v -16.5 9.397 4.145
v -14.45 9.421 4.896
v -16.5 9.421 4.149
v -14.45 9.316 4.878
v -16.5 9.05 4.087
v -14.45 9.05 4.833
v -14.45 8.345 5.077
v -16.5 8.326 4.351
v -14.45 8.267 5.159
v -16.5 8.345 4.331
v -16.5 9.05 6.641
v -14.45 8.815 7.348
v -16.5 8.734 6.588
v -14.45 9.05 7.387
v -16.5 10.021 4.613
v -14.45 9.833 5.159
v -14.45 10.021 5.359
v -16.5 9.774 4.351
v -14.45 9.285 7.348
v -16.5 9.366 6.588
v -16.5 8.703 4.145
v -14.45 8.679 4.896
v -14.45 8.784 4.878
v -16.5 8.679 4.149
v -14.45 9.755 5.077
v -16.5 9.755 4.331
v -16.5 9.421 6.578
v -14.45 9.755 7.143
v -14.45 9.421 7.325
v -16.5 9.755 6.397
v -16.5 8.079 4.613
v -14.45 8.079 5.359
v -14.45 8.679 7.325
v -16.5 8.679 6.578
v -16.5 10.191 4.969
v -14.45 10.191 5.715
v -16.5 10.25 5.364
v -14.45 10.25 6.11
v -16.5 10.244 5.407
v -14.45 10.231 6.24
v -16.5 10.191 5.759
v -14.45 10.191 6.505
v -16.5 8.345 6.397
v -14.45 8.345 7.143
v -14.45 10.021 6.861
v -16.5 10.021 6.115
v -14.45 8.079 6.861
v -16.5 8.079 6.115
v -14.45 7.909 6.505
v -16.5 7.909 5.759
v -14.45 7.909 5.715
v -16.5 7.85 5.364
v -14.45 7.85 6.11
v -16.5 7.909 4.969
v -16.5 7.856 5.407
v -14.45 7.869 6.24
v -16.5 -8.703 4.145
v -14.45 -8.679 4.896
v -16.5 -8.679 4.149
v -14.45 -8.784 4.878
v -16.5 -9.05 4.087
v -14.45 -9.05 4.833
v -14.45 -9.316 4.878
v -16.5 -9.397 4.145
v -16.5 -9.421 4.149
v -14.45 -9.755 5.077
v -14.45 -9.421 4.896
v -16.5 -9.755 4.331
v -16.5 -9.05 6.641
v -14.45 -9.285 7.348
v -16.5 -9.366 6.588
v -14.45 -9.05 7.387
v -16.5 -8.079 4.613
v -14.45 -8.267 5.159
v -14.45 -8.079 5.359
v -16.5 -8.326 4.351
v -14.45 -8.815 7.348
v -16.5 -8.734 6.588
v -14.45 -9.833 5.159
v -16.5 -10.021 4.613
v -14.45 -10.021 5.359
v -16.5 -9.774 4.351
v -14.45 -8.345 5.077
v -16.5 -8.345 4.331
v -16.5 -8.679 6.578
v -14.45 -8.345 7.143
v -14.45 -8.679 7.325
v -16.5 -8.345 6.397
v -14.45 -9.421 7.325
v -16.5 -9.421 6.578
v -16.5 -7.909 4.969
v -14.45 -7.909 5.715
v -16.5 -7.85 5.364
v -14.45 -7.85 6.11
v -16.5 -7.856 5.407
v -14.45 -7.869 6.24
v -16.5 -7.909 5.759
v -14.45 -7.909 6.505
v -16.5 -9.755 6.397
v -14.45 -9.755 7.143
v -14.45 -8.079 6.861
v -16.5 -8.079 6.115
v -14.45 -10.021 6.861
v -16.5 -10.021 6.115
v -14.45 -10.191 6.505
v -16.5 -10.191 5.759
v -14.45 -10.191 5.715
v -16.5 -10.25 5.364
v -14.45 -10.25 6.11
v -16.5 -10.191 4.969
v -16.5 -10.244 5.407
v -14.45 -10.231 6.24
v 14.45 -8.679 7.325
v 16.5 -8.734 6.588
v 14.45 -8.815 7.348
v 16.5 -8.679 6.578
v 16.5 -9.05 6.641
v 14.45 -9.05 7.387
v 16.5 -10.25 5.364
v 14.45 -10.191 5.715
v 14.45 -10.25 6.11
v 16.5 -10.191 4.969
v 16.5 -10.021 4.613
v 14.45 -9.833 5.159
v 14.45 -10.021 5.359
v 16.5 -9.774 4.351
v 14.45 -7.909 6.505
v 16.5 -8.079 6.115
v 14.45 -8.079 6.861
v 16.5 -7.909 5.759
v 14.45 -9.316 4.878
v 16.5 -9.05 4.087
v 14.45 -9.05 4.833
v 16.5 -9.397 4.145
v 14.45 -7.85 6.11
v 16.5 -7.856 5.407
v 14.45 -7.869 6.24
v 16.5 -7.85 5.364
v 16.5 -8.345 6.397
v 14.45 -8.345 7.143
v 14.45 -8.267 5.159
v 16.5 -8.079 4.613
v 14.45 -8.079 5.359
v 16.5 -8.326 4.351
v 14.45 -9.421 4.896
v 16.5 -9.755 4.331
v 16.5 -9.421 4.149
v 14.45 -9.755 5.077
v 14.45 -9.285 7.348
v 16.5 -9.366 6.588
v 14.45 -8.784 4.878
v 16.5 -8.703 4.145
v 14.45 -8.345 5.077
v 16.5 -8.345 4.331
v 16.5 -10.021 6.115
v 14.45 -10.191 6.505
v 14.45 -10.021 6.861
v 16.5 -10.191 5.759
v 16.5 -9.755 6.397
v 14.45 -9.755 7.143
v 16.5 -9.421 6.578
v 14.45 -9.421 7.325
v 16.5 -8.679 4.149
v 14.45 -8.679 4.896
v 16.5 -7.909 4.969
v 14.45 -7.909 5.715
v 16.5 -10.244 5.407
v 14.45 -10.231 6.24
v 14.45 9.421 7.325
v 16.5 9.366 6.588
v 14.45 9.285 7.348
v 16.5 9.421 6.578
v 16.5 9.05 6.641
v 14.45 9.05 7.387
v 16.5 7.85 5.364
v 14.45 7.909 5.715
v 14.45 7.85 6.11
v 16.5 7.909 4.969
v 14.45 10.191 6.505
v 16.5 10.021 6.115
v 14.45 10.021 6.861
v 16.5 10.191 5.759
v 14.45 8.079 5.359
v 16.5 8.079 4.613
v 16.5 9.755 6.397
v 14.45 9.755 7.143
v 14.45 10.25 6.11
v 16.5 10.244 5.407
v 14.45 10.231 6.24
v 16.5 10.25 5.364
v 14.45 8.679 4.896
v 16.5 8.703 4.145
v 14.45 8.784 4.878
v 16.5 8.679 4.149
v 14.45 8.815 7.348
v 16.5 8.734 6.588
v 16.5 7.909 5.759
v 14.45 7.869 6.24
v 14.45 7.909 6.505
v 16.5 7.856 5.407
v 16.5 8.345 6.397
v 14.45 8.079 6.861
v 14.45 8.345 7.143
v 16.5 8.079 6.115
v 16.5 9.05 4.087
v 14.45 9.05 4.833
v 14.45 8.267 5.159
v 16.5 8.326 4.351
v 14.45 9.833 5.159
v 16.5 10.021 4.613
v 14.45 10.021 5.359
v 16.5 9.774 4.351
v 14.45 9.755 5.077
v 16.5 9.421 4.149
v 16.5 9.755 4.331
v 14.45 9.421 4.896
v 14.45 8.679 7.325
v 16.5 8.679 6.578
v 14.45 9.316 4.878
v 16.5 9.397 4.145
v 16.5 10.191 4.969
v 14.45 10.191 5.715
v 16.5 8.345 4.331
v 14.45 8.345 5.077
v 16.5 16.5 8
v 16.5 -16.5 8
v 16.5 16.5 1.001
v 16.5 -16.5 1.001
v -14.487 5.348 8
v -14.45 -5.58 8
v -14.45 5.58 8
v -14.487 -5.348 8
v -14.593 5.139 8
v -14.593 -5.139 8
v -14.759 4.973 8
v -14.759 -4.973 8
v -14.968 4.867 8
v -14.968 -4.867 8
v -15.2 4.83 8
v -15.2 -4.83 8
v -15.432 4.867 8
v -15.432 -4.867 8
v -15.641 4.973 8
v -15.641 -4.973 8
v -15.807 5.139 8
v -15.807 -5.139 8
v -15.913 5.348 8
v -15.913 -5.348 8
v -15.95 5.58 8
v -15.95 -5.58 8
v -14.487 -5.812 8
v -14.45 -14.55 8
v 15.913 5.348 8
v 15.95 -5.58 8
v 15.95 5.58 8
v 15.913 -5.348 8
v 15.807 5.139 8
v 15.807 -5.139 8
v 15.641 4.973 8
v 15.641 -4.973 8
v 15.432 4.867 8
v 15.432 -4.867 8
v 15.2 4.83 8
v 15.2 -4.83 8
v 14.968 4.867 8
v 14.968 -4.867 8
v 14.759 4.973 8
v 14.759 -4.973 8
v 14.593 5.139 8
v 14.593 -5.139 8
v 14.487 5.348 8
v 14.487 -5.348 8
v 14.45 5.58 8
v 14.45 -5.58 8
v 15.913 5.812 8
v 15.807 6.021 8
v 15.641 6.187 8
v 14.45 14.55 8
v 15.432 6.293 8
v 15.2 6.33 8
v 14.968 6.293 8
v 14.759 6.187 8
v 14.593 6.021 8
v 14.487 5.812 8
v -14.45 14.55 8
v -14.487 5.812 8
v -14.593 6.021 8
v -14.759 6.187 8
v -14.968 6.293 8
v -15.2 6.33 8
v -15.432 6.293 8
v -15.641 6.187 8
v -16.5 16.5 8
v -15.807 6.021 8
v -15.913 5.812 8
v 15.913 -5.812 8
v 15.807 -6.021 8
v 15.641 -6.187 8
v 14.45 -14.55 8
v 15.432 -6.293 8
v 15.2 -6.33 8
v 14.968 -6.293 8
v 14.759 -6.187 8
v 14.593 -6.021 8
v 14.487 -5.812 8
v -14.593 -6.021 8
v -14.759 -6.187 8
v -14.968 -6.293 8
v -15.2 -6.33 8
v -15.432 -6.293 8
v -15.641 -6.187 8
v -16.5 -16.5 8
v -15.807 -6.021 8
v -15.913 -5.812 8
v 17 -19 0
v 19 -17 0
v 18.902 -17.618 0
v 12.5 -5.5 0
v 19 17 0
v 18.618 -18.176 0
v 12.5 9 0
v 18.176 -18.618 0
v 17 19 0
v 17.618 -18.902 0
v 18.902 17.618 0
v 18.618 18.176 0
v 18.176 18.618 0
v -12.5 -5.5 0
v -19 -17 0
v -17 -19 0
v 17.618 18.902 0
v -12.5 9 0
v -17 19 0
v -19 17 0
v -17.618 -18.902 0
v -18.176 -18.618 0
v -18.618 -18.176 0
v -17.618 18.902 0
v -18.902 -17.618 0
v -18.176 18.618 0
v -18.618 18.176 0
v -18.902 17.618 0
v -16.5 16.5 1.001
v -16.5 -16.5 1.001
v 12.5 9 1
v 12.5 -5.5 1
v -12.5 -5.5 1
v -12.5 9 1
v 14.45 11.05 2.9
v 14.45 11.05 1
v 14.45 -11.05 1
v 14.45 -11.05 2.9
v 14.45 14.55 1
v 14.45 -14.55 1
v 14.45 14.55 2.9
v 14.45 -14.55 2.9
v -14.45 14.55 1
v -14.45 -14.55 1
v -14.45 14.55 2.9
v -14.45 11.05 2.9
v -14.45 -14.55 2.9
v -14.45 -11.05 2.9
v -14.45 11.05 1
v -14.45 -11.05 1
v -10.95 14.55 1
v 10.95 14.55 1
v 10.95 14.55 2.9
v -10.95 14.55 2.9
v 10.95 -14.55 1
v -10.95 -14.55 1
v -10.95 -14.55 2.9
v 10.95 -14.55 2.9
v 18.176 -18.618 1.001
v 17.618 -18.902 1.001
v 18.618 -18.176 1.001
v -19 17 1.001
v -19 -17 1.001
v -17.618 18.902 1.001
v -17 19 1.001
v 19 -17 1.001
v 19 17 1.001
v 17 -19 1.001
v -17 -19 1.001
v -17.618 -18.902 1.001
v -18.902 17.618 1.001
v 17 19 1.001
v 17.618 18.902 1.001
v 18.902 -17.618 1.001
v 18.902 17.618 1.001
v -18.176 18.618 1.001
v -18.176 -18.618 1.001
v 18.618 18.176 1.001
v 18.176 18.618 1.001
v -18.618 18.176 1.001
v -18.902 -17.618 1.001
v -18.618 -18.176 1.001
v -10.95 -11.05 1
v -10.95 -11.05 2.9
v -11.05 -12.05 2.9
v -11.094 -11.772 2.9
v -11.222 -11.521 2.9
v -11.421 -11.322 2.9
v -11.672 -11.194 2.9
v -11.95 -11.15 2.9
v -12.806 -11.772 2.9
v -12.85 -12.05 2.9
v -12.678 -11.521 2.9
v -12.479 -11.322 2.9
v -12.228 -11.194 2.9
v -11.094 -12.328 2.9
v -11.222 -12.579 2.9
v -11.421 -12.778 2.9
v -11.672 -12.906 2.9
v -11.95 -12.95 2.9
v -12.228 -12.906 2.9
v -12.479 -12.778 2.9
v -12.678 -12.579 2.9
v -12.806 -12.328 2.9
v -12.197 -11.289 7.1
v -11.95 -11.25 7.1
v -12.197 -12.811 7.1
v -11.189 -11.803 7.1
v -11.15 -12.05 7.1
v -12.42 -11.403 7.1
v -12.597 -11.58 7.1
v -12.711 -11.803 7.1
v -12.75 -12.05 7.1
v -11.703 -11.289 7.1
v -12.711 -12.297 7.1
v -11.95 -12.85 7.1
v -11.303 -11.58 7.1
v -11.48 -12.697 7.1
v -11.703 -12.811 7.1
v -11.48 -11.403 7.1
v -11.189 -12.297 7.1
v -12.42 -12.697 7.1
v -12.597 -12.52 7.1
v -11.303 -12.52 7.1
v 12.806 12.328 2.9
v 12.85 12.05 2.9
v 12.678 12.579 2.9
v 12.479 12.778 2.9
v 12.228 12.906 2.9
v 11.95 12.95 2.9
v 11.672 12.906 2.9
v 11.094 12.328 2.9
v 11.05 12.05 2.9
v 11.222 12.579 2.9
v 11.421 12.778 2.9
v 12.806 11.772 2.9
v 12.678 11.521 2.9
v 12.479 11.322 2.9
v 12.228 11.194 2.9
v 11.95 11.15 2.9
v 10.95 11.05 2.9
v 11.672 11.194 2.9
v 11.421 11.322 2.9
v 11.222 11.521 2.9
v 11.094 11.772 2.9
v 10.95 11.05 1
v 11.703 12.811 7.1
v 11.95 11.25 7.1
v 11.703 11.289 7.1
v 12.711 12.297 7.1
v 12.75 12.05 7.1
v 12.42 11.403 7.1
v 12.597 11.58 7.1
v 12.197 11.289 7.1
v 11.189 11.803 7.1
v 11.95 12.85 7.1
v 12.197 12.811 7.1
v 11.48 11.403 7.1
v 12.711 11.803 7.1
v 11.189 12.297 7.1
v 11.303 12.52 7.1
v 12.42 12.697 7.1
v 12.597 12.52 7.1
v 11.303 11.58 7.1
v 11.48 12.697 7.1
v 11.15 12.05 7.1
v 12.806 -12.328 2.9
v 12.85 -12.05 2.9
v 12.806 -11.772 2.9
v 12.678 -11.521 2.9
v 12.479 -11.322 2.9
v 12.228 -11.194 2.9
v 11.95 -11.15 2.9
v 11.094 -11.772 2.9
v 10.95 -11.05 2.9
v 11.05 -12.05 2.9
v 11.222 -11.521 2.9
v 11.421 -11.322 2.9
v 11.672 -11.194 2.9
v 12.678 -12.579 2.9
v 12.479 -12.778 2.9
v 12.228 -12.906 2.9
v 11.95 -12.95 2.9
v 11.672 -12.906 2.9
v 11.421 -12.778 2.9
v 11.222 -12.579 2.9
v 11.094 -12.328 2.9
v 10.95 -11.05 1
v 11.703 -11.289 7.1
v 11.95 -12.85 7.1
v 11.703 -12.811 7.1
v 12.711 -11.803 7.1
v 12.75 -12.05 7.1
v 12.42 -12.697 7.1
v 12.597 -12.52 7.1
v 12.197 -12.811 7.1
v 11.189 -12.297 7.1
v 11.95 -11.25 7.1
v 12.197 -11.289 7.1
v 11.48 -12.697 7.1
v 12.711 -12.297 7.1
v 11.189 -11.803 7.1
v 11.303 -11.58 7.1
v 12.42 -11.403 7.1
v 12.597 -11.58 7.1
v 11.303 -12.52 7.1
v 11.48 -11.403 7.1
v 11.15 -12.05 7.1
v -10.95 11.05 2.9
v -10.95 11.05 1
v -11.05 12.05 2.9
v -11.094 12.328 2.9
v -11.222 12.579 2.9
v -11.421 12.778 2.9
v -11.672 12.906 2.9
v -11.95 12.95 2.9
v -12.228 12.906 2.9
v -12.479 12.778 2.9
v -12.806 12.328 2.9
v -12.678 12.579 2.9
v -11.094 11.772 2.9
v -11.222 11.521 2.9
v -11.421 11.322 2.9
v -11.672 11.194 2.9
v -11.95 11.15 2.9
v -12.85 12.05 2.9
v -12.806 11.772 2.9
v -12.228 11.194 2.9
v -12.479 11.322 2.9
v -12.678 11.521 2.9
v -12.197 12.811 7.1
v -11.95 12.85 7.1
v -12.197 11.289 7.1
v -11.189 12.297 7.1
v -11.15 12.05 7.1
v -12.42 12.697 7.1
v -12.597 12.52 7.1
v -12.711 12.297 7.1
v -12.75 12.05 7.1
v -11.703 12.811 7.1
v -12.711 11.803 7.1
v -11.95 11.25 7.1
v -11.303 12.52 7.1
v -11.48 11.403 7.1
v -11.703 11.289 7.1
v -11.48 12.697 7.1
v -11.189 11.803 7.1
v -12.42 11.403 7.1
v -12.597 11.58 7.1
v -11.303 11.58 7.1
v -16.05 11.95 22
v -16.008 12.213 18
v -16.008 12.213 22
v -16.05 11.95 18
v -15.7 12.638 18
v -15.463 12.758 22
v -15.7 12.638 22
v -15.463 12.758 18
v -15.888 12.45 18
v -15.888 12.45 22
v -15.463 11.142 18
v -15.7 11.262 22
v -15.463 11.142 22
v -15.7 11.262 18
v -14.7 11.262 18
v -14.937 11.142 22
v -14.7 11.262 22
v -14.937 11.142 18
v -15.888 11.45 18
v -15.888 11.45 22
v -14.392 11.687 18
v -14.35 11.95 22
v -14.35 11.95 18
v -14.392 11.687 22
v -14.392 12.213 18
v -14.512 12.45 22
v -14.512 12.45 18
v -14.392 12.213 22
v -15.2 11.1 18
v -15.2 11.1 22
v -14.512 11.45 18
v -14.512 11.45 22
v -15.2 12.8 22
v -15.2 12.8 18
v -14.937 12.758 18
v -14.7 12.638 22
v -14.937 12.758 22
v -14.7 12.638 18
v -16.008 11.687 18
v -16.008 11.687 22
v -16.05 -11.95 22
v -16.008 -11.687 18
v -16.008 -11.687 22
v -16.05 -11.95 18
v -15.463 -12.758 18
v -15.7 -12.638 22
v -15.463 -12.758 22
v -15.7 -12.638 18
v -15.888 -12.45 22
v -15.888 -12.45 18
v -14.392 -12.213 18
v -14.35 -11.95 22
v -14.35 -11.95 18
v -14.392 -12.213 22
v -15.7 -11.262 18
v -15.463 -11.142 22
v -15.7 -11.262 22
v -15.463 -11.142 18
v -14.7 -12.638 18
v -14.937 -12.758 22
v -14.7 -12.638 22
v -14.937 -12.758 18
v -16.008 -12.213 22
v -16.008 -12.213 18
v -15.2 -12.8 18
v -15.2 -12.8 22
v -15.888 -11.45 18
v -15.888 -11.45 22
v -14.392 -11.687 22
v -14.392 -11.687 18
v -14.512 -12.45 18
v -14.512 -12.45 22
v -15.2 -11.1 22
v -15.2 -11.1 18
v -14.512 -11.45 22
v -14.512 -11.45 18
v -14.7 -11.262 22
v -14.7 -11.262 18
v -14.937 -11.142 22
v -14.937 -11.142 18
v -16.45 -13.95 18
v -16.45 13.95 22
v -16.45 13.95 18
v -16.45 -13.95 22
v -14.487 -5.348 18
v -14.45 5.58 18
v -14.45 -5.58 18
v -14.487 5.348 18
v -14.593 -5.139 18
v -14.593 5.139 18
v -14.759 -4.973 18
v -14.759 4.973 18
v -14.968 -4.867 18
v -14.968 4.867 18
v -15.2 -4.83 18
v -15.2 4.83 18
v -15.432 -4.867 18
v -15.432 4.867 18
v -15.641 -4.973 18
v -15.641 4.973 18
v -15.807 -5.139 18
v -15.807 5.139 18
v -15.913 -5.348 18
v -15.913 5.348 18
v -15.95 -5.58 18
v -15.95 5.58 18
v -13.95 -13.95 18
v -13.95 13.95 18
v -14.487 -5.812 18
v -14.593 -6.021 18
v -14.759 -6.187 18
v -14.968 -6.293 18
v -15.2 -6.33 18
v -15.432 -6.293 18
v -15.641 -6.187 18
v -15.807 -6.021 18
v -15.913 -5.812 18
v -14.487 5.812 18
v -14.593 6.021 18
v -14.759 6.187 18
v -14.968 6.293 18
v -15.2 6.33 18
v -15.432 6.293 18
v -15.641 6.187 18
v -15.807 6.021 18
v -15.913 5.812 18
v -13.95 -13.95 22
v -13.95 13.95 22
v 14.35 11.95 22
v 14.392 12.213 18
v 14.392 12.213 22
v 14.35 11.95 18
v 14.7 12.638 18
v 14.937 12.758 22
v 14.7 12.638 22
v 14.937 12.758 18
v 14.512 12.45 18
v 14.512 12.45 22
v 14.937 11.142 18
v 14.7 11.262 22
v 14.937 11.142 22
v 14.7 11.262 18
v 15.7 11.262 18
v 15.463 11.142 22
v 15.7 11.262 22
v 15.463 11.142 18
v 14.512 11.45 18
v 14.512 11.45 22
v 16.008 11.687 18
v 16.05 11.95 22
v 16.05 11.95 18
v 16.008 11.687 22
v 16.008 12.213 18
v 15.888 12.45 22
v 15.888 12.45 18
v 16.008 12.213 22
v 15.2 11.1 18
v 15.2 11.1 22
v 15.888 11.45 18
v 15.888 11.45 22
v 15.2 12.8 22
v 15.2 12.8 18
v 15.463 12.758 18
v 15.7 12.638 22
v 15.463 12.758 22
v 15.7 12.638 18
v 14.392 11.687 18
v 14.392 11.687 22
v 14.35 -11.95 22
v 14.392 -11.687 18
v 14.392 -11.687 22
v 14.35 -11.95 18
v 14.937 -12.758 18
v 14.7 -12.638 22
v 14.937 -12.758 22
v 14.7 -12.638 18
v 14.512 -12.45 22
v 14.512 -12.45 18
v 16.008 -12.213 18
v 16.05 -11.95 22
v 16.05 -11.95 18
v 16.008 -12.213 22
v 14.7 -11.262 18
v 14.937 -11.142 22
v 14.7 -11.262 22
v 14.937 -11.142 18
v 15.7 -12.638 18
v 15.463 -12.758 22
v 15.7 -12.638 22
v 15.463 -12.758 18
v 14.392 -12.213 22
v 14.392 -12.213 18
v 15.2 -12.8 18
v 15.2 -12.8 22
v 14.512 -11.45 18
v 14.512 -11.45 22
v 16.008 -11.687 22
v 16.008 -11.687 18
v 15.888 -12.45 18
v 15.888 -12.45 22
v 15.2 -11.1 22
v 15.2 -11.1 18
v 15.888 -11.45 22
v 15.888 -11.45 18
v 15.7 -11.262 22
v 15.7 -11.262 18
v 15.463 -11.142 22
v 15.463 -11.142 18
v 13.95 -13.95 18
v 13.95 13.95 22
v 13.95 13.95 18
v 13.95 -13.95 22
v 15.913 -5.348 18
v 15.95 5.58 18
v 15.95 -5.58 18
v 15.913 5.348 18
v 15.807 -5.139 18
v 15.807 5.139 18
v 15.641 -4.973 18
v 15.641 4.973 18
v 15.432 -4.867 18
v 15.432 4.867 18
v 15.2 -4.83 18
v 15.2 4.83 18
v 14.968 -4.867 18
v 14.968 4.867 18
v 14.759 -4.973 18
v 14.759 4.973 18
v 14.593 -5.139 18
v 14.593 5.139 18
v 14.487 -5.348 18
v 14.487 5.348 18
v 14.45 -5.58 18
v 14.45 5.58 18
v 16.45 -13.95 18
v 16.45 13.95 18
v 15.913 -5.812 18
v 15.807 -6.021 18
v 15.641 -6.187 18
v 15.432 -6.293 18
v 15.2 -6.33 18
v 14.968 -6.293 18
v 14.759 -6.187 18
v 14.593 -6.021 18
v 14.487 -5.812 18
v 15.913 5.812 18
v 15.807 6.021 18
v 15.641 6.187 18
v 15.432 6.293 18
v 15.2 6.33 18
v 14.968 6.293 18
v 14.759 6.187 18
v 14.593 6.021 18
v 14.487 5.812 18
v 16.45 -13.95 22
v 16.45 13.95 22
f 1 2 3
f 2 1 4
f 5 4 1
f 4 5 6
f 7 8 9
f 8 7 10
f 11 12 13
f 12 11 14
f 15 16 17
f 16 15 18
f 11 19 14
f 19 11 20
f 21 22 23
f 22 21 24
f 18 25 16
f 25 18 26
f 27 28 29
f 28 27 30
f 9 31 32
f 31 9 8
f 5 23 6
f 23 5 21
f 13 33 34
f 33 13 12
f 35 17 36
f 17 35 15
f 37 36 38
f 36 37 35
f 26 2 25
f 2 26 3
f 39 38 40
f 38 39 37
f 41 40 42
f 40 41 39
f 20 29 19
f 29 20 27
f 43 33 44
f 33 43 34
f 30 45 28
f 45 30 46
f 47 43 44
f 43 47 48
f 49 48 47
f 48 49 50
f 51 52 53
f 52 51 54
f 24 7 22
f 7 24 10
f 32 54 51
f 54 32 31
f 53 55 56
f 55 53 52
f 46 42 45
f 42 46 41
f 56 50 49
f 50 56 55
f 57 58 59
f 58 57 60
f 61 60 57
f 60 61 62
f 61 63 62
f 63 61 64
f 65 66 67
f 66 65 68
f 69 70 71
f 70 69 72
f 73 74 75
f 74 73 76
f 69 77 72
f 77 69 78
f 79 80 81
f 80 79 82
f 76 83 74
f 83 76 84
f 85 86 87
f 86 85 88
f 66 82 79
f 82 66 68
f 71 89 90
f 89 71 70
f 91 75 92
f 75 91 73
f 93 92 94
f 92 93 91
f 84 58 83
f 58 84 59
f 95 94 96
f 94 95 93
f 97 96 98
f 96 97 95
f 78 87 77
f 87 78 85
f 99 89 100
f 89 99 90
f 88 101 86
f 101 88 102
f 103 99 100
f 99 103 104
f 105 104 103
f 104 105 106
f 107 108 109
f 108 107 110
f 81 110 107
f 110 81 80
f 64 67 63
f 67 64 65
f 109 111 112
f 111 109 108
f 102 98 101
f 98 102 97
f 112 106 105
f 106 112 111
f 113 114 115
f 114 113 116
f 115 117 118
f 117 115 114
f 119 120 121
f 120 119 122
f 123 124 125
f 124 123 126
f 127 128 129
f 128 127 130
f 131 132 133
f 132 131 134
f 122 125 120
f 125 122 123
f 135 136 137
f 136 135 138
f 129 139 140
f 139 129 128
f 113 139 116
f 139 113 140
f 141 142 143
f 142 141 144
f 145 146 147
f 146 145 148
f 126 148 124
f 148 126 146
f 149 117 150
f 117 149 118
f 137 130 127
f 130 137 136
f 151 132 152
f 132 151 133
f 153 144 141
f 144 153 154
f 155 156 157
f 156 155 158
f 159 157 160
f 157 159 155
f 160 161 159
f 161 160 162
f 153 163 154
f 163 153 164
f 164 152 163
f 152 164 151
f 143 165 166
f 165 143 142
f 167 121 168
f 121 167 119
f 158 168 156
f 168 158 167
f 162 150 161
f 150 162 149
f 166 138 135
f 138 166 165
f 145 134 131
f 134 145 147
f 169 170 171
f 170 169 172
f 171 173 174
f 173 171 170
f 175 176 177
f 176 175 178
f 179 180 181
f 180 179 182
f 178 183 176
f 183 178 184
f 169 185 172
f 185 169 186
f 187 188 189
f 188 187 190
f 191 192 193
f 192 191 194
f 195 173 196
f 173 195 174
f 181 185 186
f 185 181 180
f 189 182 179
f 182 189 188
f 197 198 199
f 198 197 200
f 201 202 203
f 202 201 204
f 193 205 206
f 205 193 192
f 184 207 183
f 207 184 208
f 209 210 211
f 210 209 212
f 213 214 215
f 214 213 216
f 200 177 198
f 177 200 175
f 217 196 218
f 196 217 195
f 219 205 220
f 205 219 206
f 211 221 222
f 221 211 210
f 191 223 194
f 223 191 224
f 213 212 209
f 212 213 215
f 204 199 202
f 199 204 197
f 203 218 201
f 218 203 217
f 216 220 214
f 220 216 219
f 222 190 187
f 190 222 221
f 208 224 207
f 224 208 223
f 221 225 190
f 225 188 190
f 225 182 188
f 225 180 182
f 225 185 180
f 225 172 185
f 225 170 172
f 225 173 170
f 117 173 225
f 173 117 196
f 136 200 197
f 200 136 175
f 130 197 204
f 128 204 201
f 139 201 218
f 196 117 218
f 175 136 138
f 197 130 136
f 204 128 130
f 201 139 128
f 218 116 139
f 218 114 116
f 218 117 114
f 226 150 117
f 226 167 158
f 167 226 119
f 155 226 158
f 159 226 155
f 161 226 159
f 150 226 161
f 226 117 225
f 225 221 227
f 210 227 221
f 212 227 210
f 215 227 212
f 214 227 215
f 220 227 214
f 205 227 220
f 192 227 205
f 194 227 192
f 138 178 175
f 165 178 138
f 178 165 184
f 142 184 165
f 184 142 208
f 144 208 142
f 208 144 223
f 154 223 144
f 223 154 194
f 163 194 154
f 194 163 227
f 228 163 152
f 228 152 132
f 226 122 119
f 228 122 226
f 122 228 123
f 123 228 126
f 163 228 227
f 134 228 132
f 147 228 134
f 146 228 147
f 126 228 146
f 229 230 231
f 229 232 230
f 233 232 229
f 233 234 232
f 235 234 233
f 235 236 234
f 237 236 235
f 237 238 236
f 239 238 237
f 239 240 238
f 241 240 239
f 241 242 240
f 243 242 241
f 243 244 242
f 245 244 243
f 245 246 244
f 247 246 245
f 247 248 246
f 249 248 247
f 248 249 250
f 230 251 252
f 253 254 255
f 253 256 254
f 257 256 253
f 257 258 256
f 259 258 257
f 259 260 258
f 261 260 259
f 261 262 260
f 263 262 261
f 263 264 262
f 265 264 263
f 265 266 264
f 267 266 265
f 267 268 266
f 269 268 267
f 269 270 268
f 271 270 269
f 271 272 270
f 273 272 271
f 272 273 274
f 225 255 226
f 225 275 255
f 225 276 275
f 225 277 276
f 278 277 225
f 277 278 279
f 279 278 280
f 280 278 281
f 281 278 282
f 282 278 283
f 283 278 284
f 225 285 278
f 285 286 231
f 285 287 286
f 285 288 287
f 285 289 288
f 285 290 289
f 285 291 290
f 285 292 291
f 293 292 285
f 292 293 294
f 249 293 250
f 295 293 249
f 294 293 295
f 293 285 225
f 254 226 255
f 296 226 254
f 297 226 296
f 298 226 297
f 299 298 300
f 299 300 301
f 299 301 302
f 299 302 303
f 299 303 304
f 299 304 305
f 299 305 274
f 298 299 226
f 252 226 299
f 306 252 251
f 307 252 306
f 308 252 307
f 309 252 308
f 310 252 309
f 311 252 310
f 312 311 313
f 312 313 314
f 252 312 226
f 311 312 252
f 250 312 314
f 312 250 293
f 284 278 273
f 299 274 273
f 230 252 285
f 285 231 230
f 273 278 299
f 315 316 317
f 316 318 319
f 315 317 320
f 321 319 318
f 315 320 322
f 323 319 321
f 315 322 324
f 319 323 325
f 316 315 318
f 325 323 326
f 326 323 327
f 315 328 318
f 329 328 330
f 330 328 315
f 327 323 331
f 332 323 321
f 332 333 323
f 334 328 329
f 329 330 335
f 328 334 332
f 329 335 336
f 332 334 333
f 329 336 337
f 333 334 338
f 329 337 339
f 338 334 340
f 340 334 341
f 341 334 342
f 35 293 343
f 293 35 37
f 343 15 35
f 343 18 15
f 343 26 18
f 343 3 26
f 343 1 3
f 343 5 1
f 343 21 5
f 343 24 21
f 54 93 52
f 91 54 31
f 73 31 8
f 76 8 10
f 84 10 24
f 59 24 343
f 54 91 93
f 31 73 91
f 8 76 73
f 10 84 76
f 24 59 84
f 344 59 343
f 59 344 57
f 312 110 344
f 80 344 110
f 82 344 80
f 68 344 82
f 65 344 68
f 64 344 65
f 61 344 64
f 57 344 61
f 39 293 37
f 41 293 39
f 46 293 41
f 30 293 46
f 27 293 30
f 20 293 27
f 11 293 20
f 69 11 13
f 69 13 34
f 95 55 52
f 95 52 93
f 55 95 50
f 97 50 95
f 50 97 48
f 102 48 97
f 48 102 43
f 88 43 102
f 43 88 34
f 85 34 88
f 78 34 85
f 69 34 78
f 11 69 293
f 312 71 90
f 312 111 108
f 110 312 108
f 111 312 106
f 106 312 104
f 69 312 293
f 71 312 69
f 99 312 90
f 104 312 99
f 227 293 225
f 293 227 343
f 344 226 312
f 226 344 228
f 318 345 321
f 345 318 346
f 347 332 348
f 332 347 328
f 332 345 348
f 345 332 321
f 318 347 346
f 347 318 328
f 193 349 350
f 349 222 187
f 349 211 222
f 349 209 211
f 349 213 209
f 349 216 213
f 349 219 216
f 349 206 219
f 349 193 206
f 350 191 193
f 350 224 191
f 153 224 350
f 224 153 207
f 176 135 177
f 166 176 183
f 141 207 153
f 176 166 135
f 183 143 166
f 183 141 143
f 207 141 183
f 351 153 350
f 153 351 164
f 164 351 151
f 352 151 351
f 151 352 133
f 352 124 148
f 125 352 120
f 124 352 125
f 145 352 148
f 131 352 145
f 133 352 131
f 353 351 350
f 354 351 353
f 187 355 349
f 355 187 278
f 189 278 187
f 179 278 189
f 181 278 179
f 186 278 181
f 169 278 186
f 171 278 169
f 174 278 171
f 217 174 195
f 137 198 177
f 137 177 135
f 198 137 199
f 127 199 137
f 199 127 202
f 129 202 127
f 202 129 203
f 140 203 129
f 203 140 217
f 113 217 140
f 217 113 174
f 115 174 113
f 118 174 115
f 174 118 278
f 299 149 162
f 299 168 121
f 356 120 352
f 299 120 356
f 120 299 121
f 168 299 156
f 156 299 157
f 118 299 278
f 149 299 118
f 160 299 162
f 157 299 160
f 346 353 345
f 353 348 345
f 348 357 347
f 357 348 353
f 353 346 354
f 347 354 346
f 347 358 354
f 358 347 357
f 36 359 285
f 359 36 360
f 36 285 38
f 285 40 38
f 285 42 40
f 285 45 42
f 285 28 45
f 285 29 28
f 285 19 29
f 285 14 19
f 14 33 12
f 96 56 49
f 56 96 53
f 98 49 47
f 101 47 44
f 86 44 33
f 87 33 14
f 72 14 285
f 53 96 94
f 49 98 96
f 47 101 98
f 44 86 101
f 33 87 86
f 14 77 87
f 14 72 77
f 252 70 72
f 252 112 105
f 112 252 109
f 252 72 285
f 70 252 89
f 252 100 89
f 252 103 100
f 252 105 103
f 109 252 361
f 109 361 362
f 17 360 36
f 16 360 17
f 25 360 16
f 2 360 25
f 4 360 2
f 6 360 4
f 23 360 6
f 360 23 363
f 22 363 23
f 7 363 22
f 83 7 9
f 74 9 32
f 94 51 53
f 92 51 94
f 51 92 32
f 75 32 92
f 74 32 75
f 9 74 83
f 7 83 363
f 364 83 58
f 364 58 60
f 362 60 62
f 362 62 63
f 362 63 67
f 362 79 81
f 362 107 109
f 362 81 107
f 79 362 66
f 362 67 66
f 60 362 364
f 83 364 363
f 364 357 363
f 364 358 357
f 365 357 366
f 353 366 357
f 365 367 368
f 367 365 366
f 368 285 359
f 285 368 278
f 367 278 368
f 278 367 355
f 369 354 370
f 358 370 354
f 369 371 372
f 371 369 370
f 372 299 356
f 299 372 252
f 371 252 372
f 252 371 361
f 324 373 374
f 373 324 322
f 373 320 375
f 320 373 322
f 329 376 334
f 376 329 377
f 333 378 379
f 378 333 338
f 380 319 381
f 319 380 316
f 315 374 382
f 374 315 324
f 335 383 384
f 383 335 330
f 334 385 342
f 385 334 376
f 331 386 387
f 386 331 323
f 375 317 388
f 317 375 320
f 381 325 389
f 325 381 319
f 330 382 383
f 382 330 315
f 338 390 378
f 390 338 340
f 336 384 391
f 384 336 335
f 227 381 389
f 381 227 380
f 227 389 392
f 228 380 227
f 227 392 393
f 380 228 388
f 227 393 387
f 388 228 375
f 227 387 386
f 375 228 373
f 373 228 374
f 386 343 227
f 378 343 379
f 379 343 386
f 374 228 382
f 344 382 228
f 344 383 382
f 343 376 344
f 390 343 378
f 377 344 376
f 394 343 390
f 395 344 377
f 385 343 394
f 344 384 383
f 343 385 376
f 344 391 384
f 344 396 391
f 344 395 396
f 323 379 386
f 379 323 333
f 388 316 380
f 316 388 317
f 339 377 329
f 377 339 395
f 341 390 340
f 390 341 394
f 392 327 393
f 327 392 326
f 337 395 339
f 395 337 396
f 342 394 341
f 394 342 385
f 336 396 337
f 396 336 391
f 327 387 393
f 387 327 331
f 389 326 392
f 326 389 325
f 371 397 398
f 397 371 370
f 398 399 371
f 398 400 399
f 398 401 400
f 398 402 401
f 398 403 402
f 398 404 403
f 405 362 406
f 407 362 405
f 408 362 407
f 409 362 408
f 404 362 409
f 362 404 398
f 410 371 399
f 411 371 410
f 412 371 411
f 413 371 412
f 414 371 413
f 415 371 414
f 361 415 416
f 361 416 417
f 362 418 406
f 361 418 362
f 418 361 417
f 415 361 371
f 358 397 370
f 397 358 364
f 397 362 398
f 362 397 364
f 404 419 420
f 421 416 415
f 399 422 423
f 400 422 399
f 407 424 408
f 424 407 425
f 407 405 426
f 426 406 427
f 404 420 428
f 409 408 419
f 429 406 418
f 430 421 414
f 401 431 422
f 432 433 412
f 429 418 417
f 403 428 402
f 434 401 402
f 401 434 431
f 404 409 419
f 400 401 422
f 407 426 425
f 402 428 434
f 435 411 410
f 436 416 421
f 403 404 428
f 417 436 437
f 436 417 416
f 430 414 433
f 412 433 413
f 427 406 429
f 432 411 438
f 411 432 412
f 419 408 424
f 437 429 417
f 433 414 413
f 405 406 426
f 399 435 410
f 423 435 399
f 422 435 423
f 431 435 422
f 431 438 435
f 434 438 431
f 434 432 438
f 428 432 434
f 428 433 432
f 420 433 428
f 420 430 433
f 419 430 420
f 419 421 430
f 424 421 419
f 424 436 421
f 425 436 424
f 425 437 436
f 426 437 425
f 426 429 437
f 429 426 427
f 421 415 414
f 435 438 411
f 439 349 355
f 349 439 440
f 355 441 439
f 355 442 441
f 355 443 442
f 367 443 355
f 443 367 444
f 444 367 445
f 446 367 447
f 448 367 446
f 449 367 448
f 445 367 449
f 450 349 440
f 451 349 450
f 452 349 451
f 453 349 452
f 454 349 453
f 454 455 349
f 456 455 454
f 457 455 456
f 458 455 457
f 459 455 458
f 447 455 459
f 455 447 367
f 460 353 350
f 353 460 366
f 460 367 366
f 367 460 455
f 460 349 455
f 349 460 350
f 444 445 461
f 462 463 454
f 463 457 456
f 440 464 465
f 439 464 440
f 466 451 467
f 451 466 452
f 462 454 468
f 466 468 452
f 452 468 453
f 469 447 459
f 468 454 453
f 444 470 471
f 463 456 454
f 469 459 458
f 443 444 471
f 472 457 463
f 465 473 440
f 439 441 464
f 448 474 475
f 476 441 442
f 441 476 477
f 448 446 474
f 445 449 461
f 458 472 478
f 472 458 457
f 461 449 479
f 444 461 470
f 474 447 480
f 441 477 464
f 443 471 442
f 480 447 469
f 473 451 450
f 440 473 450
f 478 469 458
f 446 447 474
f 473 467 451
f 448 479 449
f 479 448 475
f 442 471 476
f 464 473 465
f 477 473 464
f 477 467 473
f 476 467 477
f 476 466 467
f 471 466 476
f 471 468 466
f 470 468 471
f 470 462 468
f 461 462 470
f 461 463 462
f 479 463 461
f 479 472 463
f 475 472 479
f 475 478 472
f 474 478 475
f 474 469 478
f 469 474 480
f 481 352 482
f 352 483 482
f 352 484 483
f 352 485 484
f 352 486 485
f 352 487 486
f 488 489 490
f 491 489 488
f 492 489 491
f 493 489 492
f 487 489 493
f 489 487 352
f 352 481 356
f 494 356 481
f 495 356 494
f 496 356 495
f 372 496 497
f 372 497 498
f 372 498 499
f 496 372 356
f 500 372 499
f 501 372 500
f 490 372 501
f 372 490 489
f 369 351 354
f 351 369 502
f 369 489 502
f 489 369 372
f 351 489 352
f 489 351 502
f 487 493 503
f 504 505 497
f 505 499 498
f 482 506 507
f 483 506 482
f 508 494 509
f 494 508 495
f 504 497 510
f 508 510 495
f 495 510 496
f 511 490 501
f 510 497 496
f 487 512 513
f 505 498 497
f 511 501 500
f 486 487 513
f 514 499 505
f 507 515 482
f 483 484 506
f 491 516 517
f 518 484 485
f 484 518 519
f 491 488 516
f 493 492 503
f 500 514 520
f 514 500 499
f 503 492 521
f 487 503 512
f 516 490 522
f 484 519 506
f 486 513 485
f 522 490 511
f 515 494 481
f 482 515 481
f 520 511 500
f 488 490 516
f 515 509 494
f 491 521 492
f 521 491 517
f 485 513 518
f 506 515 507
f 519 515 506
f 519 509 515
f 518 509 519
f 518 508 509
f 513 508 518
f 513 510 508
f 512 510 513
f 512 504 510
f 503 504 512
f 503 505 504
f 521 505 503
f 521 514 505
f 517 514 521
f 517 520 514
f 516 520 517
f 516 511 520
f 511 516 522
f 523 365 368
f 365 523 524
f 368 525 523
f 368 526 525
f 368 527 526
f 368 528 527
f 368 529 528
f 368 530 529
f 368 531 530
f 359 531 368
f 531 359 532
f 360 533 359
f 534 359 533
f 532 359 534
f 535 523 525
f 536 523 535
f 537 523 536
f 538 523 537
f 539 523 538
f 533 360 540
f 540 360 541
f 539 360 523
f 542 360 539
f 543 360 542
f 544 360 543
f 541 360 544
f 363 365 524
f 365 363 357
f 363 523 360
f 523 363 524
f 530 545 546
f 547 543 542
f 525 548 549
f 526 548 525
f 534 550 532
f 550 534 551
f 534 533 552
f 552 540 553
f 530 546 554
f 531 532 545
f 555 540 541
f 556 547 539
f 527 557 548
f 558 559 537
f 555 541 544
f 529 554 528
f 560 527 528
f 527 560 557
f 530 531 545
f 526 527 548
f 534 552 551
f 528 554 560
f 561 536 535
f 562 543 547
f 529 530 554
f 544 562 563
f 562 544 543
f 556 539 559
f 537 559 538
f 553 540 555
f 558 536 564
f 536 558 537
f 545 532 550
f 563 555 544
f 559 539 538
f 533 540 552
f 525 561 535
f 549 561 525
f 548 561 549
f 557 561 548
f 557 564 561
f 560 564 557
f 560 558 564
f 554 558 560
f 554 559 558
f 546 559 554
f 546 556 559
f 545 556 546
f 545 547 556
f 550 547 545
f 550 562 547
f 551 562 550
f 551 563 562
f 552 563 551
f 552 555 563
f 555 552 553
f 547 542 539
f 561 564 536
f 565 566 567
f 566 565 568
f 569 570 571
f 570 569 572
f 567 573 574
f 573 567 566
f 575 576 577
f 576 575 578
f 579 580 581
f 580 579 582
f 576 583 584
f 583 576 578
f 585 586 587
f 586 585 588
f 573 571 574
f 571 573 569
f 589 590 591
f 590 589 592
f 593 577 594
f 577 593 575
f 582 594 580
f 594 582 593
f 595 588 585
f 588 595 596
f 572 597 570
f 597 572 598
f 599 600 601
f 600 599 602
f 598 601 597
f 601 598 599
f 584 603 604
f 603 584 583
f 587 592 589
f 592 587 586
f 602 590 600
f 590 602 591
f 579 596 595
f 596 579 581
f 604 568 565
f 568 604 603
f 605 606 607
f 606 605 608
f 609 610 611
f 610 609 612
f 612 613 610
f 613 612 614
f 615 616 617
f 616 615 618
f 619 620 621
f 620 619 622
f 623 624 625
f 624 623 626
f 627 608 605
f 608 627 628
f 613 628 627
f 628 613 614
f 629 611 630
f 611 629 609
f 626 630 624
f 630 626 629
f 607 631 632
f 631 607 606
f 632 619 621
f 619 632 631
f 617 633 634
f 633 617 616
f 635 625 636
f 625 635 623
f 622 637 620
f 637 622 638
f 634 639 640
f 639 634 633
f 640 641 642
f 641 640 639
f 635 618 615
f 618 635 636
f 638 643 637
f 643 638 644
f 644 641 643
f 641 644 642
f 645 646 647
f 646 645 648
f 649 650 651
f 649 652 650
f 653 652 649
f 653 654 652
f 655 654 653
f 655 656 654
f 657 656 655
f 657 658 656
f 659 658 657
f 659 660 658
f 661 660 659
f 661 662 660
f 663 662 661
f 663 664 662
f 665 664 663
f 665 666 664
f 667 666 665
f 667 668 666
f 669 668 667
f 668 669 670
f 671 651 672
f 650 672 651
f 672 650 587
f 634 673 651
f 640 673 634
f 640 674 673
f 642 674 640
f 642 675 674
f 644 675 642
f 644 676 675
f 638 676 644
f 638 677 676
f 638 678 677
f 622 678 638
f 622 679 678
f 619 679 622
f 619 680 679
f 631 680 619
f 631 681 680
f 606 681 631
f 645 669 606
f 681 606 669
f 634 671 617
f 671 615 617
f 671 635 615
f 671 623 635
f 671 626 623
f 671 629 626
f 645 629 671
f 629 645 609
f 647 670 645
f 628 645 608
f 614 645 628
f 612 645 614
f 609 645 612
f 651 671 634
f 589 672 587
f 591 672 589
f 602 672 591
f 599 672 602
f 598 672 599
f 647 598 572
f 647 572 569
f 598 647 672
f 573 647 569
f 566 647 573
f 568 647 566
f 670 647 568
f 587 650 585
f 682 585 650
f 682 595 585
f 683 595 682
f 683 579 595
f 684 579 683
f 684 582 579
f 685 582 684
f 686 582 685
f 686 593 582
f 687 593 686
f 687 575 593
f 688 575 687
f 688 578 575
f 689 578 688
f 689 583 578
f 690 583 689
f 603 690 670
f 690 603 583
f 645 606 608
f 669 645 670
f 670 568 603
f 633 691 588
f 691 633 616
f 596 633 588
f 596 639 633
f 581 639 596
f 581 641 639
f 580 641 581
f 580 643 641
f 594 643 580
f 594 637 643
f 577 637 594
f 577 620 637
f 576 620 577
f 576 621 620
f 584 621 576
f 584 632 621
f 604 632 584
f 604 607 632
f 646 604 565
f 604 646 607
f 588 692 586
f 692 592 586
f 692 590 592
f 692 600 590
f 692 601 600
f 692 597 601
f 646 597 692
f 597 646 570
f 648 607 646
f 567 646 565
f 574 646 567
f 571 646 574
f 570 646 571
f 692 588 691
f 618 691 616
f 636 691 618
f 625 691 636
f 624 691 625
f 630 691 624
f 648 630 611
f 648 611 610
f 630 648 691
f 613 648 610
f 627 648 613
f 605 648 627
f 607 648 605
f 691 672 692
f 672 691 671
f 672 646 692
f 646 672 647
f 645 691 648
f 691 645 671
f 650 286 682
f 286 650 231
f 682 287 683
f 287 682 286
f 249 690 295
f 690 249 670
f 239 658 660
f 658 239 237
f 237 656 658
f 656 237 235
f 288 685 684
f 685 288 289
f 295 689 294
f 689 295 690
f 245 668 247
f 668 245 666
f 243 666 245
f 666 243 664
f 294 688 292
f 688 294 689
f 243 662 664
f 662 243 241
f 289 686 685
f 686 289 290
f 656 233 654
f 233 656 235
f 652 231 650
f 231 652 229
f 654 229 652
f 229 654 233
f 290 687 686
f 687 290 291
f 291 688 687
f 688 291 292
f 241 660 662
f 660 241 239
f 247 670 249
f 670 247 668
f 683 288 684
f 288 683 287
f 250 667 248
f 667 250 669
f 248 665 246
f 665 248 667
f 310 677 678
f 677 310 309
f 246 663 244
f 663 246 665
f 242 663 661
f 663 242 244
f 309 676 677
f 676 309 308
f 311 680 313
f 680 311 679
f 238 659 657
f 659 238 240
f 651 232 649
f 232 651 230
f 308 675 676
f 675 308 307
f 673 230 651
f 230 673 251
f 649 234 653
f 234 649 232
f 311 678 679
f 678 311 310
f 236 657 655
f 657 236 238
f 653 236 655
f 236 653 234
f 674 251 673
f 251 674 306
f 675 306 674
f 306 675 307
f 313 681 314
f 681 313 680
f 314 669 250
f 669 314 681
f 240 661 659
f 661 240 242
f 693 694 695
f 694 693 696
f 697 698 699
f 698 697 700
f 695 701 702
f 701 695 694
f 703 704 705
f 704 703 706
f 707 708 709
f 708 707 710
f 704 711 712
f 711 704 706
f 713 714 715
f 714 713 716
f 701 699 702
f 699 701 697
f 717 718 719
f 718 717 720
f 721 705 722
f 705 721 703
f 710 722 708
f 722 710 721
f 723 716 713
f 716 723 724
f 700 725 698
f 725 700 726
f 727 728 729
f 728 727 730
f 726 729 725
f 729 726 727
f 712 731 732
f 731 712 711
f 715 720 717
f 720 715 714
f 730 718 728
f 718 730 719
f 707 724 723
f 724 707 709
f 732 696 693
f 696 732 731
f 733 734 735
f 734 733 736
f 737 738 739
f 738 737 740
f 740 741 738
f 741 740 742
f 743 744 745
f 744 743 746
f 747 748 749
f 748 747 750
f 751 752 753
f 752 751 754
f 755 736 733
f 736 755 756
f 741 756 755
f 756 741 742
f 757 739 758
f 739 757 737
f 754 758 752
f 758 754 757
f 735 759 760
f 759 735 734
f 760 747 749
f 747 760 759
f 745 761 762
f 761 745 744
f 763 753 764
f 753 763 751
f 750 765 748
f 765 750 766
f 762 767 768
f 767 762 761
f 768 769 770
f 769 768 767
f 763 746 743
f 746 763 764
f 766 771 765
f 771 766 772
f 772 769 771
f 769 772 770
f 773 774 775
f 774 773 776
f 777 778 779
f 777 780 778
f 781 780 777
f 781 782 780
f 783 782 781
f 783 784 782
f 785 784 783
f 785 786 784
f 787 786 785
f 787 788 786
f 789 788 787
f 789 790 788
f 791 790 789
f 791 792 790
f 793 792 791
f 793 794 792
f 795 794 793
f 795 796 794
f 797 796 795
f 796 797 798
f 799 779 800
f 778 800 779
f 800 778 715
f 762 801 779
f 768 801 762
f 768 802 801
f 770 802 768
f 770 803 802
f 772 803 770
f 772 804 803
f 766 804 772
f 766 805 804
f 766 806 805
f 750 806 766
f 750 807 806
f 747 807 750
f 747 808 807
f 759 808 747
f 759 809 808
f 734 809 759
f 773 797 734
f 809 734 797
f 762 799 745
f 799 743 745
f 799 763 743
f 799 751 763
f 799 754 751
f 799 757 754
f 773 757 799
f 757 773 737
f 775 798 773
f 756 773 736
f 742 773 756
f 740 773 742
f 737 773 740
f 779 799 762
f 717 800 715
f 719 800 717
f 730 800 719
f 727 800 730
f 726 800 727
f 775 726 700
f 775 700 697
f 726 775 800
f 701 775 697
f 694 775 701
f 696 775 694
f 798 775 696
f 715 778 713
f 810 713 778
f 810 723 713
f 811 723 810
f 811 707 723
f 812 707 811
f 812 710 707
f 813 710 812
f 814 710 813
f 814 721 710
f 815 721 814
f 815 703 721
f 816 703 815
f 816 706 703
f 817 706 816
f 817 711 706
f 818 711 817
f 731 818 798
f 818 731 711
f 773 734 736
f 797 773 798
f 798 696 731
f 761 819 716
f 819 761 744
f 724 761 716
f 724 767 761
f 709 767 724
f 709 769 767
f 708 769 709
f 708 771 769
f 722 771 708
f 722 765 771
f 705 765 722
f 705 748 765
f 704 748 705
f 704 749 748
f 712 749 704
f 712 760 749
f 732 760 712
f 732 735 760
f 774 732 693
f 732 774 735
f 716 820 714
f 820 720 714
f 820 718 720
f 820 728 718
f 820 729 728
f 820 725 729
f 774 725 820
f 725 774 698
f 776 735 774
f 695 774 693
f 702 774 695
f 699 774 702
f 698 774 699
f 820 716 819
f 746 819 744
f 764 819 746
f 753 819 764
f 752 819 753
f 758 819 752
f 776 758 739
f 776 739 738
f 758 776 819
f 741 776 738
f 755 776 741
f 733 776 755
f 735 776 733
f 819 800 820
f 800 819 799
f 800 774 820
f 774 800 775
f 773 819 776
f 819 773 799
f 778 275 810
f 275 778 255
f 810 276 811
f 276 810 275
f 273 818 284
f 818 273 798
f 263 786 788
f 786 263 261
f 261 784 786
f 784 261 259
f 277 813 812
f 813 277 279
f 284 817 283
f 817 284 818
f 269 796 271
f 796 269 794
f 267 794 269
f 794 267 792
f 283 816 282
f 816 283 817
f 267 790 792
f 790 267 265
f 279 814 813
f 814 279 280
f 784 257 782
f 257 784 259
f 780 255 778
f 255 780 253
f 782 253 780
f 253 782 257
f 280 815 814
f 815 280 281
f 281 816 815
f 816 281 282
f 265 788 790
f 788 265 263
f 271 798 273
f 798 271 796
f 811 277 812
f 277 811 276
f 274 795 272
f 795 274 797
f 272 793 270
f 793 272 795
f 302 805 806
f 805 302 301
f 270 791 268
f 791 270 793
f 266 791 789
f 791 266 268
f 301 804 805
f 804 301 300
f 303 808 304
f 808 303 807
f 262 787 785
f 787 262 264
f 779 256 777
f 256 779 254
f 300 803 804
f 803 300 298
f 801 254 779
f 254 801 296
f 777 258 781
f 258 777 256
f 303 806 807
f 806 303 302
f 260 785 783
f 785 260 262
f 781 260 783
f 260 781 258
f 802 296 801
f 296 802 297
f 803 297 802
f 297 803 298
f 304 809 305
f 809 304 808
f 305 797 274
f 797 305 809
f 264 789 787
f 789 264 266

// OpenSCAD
// Bezel for tiny Oled 0.96"
// Stiftleiste ist oben

$fn=20;
CLEARANCE=0.3;

WALL_THICKNESS=2.5;

OLED_XLENGTH=27.6 + CLEARANCE;
OLED_YLENGTH=27.8 + CLEARANCE;
OLED_XLEN_VISIBLE=25;
OLED_YLEN_VISIBLE=14.5;
OLED_FromTopToVisible=5.0+WALL_THICKNESS;
OLED_R=1;  // holes on the board

WALL_FRONT=1;
OUTER_LENGTH=WALL_THICKNESS*2 + 28;  // 28 is OLED_XLENGTH rounded up
EDGE_SIZE=4;
EDGE_ZLEN=1.9;

// Select "pin" or "screw"
mode = "pin";
//mode = "screw";

// Set variables for Pin or for screwholes
// Pin:
EDGE_PinHeight=4.2;
EDGE_PinRadius_bottom=0.9;
EDGE_PinRadius_top=0.8;
// Screwhole: 0.5
EDGE_ScrewRadius=0.5;

CONNECTOR_LENGTH=OLED_XLENGTH;
CONNECTOR_WIDTH = 2.5;
CONNECTOR_HEIGHT = 4;
CONNECTOR_HOLE_RADIUS = 0.85;
CONNECTOR_HOLE_DEPTH = 5;

STRUTS_THICKNESS=0.75;
STRUTS_HEIGHT=10;

BOX_ZLENGTH=8;
R_SCREW=1.2;

// Podest für Displayauflage
// Der zylinder ist entweder herausstehend (ohne differene), 
// oder kann als Bohrloch konfiguriert werden (mit difference)
module platform(x,y,dx,dy) {
    translate([x,y,WALL_FRONT+EDGE_ZLEN/2]) {    
        //Option: Pin
        if(mode == "pin"){
            translate([dx,dy,0]) cube([EDGE_SIZE, EDGE_SIZE, EDGE_ZLEN], center=true);
            translate([0,0,EDGE_ZLEN/2]) cylinder(r1=EDGE_PinRadius_bottom,r2=EDGE_PinRadius_top,h=EDGE_PinHeight);
        }
        else if(mode == "screw"){
            // Option: Screwholes
            difference(){ 
                translate([dx,dy,0]) cube([EDGE_SIZE, EDGE_SIZE, EDGE_ZLEN], center=true);    
                cylinder(r=EDGE_ScrewRadius,h=EDGE_ZLEN);
            }
        }
        else {
            translate([dx,dy,0]) cube([EDGE_SIZE, EDGE_SIZE, EDGE_ZLEN], center=true);
        }
    }
}

module connector(x,y) {
    translate([x, y, WALL_FRONT+BOX_ZLENGTH+STRUTS_HEIGHT+1]) rotate([0,180,0]){
        difference(){
            cube([CONNECTOR_WIDTH,CONNECTOR_LENGTH,CONNECTOR_HEIGHT],center=true);
            connectorHoles();
        }
        struts();
    }
}

module connectorHoles() {
    translate([0,CONNECTOR_LENGTH/2-2,-CONNECTOR_HEIGHT/2-0.1]) cylinder(r=CONNECTOR_HOLE_RADIUS, h=CONNECTOR_HOLE_DEPTH);
    translate([0,-CONNECTOR_LENGTH/2+2,-CONNECTOR_HEIGHT/2-0.1]) cylinder(r=CONNECTOR_HOLE_RADIUS,h=CONNECTOR_HOLE_DEPTH);
    
}

// Schraublöcher außen
module screwHoles() {
translate([-1-OUTER_LENGTH/2,OLED_YLENGTH/2-5,BOX_ZLENGTH-3]) rotate([0,70,0])
    cylinder(r=R_SCREW,h=10);
translate([-1-OUTER_LENGTH/2,-OLED_YLENGTH/2+5,BOX_ZLENGTH-3]) rotate([0,70,0])
    cylinder(r=R_SCREW,h=10);
translate([1+OUTER_LENGTH/2,-OLED_YLENGTH/2+5,BOX_ZLENGTH-3]) rotate([0,-70,0])
    cylinder(r=R_SCREW,h=10);
translate([1+OUTER_LENGTH/2,OLED_YLENGTH/2-5,BOX_ZLENGTH-3]) rotate([0,-70,0])
    cylinder(r=R_SCREW,h=10);
}

module struts() {
    translate([0,CONNECTOR_LENGTH/5,CONNECTOR_HEIGHT/2]) 
        cylinder(r=STRUTS_THICKNESS, h=STRUTS_HEIGHT);
    translate([0,-CONNECTOR_LENGTH/5,CONNECTOR_HEIGHT/2])
        cylinder(r=STRUTS_THICKNESS, h=STRUTS_HEIGHT);
}

// Vier Wände mit Schraublöchern
difference() {
    translate([0,0,BOX_ZLENGTH/2])
        cube([OUTER_LENGTH,OUTER_LENGTH,BOX_ZLENGTH], center=true);

    translate([0,OUTER_LENGTH/2 - OLED_YLEN_VISIBLE/2 - OLED_FromTopToVisible, 0])
        cube([OLED_XLEN_VISIBLE,OLED_YLEN_VISIBLE,100], center=true);
    translate([0,0,BOX_ZLENGTH/2 + WALL_FRONT])
    cube([OLED_XLENGTH+1, OLED_YLENGTH+1,BOX_ZLENGTH], center=true);
    screwHoles();
}

// Vier Eckpodeste, auf denen das Display aufliegt
// (müssen vielleicht größer gemacht werden, wenn wir schrauben wollen)
platform(-OLED_XLENGTH/2+EDGE_SIZE/2, -OLED_YLENGTH/2+EDGE_SIZE/2,-1,-1);
platform(OLED_XLENGTH/2-EDGE_SIZE/2, OLED_YLENGTH/2-EDGE_SIZE/2,1,1);
platform(OLED_XLENGTH/2-EDGE_SIZE/2, -OLED_YLENGTH/2+EDGE_SIZE/2,1,-1);
platform(-OLED_XLENGTH/2+EDGE_SIZE/2, OLED_YLENGTH/2-EDGE_SIZE/2,-1,1);

// Verbindungsteile zum Fixieren des Displays
//connector(-OLED_XLENGTH/2+EDGE_SIZE/2, 0);
//connector(OLED_XLENGTH/2-EDGE_SIZE/2, 0);
connector(-OLED_XLENGTH/2-WALL_THICKNESS/2, 0);
connector(OLED_XLENGTH/2+WALL_THICKNESS/2, 0);

//Überstehender Rand
difference() {
    translate([0,0,WALL_FRONT/2])
      minkowski() {
        cube([OUTER_LENGTH+1, OUTER_LENGTH+1, WALL_FRONT], center=true);
        cylinder(r=2, h=0.001);
      }

    cube([OUTER_LENGTH,OUTER_LENGTH,BOX_ZLENGTH], center=true);
}
